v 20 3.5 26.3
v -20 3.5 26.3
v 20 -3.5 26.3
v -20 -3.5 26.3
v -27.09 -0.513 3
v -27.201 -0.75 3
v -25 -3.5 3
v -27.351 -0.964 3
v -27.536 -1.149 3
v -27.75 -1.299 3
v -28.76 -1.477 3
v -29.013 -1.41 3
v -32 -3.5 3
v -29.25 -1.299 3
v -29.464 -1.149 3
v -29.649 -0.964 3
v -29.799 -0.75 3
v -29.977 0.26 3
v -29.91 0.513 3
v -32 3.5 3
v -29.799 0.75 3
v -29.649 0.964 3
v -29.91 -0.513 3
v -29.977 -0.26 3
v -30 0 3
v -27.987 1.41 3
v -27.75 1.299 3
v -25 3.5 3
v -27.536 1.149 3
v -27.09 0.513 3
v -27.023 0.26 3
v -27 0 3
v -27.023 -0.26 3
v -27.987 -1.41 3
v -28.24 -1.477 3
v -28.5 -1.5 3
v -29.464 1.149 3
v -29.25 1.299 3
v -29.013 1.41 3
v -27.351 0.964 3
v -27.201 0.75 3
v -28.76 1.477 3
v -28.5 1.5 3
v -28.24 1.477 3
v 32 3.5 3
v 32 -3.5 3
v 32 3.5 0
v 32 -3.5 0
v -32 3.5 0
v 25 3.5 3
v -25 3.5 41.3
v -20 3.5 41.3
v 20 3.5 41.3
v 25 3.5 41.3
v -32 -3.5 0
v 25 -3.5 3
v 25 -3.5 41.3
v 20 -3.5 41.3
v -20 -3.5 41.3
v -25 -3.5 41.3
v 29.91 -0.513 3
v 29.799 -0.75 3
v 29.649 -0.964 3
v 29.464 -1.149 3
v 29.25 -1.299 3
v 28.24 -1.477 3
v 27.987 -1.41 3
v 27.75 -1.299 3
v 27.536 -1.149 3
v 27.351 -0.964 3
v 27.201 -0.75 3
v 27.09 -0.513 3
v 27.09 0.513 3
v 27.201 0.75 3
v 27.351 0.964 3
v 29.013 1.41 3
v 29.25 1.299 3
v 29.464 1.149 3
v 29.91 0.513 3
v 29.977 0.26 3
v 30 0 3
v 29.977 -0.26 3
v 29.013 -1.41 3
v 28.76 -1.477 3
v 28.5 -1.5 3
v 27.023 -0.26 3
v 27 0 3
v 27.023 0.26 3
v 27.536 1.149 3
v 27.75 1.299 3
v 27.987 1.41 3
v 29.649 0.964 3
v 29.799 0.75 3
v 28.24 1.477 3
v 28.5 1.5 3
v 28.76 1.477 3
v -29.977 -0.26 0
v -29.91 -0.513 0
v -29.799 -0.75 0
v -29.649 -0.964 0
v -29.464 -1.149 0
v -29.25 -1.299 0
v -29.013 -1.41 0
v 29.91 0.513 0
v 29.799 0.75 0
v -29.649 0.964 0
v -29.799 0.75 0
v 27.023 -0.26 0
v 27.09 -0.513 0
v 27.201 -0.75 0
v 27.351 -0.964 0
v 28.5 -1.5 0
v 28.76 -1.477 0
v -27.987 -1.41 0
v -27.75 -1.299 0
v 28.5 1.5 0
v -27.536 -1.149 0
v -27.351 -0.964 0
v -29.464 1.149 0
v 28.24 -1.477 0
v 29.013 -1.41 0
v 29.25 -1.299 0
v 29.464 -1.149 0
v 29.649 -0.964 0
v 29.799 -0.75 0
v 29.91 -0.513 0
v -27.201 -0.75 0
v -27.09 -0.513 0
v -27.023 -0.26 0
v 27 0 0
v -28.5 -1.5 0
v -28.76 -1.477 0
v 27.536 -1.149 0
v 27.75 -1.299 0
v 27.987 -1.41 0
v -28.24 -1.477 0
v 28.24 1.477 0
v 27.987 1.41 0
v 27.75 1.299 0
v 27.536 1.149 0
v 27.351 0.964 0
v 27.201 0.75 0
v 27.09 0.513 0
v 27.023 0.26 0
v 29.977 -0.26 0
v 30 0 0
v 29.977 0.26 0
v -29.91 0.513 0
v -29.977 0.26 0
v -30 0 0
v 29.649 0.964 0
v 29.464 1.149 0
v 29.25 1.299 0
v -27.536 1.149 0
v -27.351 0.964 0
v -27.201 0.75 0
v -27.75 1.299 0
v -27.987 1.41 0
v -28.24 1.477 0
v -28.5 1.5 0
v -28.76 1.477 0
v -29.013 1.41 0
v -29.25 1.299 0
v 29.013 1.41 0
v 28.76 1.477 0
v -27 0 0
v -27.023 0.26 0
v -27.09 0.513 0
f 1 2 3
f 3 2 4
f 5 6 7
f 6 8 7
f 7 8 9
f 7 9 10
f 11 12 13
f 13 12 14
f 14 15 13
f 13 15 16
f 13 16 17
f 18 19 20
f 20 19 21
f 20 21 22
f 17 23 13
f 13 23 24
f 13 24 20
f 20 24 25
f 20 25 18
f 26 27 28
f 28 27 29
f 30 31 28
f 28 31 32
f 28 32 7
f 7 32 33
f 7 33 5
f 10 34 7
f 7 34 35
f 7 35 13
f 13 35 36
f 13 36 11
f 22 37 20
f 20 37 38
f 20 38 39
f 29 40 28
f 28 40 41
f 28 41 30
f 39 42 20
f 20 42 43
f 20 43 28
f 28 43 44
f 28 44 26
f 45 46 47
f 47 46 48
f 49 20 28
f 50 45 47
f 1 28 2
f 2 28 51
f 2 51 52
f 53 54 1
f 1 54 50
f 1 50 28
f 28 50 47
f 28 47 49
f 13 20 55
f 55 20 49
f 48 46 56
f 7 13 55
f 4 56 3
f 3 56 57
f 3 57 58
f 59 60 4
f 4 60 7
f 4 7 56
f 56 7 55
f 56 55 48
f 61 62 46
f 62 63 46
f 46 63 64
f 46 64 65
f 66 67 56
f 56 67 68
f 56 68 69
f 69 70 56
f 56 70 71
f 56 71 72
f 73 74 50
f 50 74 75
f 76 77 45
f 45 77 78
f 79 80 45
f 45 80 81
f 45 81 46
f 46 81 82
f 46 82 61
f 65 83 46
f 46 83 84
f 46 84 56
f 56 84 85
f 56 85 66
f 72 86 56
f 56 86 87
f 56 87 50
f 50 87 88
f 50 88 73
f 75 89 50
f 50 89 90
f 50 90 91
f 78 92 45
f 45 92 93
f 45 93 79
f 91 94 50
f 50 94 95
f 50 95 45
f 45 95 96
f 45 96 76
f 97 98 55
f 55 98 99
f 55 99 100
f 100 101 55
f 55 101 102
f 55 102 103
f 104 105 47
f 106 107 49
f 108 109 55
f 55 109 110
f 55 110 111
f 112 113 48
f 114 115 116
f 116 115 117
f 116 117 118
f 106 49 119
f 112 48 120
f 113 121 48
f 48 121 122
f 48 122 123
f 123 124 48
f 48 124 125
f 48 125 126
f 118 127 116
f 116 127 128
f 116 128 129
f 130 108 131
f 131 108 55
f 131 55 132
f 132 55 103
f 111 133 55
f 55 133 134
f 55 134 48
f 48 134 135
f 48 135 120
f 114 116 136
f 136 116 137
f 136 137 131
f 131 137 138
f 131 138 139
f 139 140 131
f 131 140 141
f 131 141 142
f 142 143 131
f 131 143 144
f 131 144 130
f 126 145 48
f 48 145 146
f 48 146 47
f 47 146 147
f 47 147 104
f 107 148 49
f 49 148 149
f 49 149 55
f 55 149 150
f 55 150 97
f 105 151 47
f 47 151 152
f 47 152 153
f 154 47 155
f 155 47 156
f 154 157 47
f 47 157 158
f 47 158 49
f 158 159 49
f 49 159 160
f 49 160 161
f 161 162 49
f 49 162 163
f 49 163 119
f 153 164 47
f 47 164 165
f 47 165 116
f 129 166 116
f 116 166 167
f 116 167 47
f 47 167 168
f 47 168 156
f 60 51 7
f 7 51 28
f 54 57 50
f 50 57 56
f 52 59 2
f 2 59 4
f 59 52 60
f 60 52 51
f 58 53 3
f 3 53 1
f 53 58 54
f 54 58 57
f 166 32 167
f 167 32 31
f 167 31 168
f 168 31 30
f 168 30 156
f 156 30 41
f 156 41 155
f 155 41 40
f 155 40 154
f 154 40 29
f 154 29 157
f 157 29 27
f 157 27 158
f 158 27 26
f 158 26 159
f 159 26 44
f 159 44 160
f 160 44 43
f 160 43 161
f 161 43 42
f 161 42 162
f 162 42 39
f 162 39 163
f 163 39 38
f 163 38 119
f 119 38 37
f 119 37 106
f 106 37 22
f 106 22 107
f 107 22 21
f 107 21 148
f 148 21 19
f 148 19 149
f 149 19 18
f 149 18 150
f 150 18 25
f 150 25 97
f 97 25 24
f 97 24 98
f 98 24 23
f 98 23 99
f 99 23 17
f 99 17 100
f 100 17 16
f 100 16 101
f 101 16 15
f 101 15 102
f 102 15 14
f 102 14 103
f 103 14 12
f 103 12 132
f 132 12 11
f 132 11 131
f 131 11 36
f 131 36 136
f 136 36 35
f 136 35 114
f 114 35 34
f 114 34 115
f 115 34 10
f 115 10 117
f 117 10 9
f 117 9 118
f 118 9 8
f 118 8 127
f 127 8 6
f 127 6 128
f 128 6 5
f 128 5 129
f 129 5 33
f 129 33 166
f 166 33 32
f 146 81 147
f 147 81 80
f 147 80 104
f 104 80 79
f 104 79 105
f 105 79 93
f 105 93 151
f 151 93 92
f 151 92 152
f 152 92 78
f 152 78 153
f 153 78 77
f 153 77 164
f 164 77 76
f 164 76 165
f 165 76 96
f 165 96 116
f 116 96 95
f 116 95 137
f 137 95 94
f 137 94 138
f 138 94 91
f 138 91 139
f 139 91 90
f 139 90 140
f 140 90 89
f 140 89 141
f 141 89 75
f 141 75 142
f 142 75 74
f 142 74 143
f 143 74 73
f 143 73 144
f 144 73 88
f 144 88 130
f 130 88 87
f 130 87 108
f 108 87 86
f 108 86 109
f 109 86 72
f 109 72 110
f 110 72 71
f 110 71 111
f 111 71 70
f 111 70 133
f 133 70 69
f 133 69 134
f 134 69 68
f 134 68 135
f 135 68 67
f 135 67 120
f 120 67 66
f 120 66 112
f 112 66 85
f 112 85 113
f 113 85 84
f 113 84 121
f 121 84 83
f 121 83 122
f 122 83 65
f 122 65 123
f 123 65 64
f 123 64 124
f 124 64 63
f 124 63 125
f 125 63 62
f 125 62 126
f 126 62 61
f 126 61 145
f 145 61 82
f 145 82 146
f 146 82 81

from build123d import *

# Parameters (mm, degrees)
SKETCH_1_W          = 64
SKETCH_1_H          = 7
EXTRUDE_3_DEPTH     = 3
SKETCH_3_W          = 50
SKETCH_3_H          = 7
EXTRUDE_4_DEPTH     = 23.3
SKETCH_4_W          = 5
SKETCH_4_H          = 7
EXTRUDE_5_DEPTH     = 15
SKETCH_5_W          = 5
SKETCH_5_H          = 7
EXTRUDE_6_DEPTH     = 15
SKETCH_6_R          = 1.5
CUT_EXTRUDE_1_DEPTH = 3
SKETCH_7_R          = 1.5
CUT_EXTRUDE_2_DEPTH = 3


with BuildPart() as part:
    # Эскиз1 → Бобышка-Вытянуть3 (new body)
    with BuildSketch(Plane.XY):
        Rectangle(SKETCH_1_W, SKETCH_1_H)
    extrude(amount=EXTRUDE_3_DEPTH)

    # Эскиз3 → Бобышка-Вытянуть4 (add)
    with BuildSketch(Plane.XY.offset(3)):
        Rectangle(SKETCH_3_W, SKETCH_3_H)
    extrude(amount=EXTRUDE_4_DEPTH)

    # Эскиз4 → Бобышка-Вытянуть5 (add)
    with BuildSketch(Plane.XY.offset(26.3)):
        with Locations((-22.5, 0)):
            Rectangle(SKETCH_4_W, SKETCH_4_H)
    extrude(amount=EXTRUDE_5_DEPTH)

    # Эскиз5 → Бобышка-Вытянуть6 (add)
    with BuildSketch(Plane.XY.offset(26.3)):
        with Locations((22.5, 0)):
            Rectangle(SKETCH_5_W, SKETCH_5_H)
    extrude(amount=EXTRUDE_6_DEPTH)

    # Эскиз6 → Вырез-Вытянуть1 (cut)
    with BuildSketch(Plane.XY.offset(3)):
        with Locations((-28.5, 0)):
            Circle(SKETCH_6_R)
    extrude(amount=-CUT_EXTRUDE_1_DEPTH, mode=Mode.SUBTRACT)

    # Эскиз7 → Вырез-Вытянуть2 (cut)
    with BuildSketch(Plane.XY.offset(3)):
        with Locations((28.5, 0)):
            Circle(SKETCH_7_R)
    extrude(amount=-CUT_EXTRUDE_2_DEPTH, mode=Mode.SUBTRACT)


solid = part.part
